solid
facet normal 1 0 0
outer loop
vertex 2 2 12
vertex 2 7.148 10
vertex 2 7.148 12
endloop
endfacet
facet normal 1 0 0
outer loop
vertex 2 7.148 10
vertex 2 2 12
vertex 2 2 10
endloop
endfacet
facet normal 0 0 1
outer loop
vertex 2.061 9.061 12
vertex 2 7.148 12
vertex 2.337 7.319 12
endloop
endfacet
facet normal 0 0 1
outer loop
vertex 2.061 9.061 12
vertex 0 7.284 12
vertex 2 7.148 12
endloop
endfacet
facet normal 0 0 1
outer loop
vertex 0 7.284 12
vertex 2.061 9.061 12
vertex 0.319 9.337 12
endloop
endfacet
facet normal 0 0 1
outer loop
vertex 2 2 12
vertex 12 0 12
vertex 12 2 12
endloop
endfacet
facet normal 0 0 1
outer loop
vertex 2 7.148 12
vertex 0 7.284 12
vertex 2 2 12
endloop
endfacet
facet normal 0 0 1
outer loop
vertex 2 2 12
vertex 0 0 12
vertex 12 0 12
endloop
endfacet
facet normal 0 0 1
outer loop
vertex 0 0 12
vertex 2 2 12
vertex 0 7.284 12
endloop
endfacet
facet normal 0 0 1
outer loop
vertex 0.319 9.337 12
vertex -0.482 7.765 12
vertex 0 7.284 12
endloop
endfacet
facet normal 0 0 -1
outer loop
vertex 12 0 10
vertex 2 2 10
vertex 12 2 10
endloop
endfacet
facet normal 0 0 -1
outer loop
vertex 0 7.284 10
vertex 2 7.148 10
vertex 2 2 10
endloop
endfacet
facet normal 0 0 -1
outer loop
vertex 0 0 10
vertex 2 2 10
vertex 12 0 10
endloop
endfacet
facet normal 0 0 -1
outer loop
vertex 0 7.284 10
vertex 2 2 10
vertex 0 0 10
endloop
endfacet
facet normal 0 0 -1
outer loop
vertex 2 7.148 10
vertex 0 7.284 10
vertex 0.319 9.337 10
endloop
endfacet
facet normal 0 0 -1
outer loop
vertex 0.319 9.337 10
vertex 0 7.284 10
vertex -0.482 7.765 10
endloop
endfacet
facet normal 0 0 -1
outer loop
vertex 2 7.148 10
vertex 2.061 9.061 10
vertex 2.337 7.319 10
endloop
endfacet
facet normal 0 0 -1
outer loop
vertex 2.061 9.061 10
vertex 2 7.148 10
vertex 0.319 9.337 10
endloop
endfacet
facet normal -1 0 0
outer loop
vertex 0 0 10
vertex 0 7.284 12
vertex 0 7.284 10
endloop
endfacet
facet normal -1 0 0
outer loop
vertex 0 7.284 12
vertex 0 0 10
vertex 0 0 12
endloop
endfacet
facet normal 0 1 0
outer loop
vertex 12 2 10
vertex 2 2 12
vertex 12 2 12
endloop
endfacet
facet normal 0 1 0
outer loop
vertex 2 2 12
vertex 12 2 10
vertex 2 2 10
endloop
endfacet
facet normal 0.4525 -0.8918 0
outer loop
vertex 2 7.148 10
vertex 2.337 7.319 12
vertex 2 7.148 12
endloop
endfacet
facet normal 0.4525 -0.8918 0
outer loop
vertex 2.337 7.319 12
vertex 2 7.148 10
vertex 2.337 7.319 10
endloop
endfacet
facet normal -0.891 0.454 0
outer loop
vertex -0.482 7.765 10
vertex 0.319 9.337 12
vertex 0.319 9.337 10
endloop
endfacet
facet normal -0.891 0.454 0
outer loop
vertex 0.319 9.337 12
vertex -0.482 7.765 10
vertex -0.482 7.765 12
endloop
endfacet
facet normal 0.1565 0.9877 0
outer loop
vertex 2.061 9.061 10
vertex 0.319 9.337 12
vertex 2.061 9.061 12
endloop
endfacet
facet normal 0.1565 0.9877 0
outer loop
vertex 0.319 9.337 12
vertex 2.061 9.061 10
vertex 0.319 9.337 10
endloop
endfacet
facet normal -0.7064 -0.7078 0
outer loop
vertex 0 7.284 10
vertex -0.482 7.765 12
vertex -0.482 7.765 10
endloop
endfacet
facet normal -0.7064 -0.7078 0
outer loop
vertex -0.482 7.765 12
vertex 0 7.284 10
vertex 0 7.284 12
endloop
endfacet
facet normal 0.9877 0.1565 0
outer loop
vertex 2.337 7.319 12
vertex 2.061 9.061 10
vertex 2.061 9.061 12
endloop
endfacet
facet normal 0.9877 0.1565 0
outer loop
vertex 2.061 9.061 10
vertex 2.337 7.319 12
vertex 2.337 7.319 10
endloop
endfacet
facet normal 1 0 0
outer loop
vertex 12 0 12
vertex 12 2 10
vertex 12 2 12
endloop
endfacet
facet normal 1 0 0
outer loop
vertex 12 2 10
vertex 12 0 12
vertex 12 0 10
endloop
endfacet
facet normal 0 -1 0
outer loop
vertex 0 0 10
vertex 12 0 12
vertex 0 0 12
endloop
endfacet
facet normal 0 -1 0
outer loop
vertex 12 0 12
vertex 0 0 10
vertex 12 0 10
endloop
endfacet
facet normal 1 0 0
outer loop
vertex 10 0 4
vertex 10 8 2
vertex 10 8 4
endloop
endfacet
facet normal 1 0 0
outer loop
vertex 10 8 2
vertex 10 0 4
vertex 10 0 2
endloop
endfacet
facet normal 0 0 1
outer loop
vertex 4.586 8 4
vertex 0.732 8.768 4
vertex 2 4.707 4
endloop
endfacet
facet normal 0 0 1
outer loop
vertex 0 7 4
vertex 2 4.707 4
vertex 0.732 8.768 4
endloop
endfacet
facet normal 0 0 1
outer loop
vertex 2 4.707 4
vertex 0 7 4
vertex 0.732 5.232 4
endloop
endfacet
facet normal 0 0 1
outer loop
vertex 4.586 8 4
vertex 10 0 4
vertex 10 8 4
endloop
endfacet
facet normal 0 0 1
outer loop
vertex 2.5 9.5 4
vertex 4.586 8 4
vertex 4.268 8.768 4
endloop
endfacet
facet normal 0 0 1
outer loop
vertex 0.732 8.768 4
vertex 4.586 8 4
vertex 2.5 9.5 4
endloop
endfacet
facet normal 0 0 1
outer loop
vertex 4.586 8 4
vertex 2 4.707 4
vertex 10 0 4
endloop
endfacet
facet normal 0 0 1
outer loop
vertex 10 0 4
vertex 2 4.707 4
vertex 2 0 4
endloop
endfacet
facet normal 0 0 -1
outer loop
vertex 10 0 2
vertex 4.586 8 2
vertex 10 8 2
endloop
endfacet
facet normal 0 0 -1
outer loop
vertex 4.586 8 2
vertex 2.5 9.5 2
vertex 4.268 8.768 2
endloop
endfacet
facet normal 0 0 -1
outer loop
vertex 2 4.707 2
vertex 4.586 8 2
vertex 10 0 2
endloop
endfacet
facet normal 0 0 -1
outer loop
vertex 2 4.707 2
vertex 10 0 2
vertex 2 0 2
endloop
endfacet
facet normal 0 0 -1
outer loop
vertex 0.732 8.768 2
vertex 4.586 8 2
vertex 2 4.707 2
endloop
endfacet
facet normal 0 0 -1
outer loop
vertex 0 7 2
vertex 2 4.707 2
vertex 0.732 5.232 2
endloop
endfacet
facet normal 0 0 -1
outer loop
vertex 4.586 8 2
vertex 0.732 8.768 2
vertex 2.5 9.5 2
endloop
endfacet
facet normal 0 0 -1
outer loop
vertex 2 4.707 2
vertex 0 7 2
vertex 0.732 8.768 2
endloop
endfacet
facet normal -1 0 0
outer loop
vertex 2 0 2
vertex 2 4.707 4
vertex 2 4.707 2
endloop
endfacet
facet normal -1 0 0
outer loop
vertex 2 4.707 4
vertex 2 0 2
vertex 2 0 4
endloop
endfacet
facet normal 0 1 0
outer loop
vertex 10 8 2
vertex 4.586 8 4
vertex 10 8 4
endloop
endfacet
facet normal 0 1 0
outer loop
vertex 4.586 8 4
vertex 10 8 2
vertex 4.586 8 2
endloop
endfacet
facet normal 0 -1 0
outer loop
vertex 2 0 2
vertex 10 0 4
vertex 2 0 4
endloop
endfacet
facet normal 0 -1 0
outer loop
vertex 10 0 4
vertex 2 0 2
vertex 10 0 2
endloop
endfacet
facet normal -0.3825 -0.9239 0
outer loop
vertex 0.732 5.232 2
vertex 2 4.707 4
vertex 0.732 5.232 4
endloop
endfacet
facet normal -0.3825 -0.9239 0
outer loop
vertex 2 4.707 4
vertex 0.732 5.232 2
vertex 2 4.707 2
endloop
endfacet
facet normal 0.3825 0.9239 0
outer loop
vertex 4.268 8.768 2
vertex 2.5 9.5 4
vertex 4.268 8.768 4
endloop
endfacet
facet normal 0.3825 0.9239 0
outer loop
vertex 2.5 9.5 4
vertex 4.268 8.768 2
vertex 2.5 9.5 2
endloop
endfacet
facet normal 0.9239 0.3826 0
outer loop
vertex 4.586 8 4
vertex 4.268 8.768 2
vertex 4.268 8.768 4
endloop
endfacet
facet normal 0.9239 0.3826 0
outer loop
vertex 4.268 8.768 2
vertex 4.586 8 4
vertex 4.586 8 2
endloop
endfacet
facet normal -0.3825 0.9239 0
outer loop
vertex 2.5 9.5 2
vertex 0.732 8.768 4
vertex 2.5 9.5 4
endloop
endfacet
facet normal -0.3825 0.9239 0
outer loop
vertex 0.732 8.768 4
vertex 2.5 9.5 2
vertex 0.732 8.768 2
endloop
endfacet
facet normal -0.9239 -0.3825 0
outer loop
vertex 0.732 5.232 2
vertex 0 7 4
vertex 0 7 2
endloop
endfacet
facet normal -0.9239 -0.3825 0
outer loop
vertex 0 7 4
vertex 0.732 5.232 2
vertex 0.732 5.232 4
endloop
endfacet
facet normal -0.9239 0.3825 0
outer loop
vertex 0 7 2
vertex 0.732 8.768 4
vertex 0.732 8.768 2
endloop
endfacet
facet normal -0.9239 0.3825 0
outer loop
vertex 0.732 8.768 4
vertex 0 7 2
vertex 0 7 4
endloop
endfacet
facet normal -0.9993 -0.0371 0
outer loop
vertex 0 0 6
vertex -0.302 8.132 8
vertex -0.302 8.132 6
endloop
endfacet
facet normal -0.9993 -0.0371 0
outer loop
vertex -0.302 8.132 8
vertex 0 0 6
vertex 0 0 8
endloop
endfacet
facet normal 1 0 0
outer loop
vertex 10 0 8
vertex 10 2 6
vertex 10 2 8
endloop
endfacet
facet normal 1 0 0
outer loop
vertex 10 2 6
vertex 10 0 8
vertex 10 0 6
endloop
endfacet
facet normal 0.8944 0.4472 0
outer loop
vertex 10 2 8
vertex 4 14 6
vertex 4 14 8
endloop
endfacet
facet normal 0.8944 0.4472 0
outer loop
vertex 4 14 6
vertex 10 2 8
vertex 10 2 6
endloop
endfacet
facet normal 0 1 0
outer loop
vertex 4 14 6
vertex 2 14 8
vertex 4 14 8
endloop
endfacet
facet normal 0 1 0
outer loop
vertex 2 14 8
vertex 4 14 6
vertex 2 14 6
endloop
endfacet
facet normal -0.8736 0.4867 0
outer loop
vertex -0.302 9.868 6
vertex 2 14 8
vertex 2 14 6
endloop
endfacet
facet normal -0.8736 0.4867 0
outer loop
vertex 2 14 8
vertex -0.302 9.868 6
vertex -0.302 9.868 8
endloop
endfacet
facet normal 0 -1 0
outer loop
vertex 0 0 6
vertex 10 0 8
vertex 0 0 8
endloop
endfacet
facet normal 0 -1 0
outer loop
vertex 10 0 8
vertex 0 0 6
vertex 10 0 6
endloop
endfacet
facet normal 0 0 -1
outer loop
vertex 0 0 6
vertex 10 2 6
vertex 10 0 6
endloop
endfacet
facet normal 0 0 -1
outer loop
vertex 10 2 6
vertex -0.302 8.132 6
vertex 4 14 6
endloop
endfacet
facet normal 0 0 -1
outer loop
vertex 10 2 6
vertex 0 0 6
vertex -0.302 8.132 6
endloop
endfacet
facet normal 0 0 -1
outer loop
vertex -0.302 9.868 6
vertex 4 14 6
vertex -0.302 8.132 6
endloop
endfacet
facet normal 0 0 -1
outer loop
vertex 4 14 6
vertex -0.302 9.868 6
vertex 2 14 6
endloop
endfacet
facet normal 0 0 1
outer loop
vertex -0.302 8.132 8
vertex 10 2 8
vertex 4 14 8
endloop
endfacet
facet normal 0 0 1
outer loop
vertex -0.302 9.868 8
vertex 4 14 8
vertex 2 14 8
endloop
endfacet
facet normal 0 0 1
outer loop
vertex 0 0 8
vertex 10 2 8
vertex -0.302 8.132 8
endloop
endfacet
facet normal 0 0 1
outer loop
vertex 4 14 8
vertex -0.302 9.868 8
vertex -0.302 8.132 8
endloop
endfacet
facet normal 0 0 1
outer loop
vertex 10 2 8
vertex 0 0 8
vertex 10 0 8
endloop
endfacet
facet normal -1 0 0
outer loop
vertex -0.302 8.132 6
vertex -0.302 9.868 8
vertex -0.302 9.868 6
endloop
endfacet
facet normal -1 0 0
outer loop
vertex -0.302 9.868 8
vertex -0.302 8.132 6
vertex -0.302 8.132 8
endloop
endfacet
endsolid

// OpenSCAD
// Define bracket dimensions
module bracket_A() {
    // Longer arm with corrected proportions
    cube([12, 2, 2]); // Adjust length to match original proportions

    // Shorter arm with enhanced rounded edge and corrected alignment
    translate([0, 2, 0]) {
        cube([2, 6, 2], center = false);
        translate([1, 6, 0]) // Fine-tuned alignment
            rotate([0, 0, 45])
            cylinder(h = 2, r = 1.5, center = false); // Enhanced curve smoothness
    }
}

module bracket_B() {
    // Refined corner curve and proper proportions
    hull() {
        cube([10, 2, 2]);
        translate([2, 6, 0]) {
            cube([2, 8, 2], center = false); // Adjusted length for alignment
        }
        translate([1.5, 9, 0]) // Corrected placement
            cylinder(h = 2, r = 2, center = false); // More pronounced rounding
    }
}

module bracket_C() {
    // Improved corner rounding and proper alignment
    translate([2, 0, 0]) {
        cube([8, 8, 2]);
        translate([0.5, 7, 0]) // Adjusted alignment
            cylinder(h = 2, r = 2.5, center = false); // Correct corner smoothness
    }
}

// Assembly of adjusted brackets
module assembly() {
    translate([0, 0, 10]) // Corrected spacing for bracket A alignment
        bracket_A();
    translate([0, 0, 6]) // Adjusted spacing and alignment for bracket B
        bracket_B();
    translate([0, 0, 2]) // Fine-tuned positioning for bracket C
        bracket_C();
}

// Generate the adjusted model
assembly();
